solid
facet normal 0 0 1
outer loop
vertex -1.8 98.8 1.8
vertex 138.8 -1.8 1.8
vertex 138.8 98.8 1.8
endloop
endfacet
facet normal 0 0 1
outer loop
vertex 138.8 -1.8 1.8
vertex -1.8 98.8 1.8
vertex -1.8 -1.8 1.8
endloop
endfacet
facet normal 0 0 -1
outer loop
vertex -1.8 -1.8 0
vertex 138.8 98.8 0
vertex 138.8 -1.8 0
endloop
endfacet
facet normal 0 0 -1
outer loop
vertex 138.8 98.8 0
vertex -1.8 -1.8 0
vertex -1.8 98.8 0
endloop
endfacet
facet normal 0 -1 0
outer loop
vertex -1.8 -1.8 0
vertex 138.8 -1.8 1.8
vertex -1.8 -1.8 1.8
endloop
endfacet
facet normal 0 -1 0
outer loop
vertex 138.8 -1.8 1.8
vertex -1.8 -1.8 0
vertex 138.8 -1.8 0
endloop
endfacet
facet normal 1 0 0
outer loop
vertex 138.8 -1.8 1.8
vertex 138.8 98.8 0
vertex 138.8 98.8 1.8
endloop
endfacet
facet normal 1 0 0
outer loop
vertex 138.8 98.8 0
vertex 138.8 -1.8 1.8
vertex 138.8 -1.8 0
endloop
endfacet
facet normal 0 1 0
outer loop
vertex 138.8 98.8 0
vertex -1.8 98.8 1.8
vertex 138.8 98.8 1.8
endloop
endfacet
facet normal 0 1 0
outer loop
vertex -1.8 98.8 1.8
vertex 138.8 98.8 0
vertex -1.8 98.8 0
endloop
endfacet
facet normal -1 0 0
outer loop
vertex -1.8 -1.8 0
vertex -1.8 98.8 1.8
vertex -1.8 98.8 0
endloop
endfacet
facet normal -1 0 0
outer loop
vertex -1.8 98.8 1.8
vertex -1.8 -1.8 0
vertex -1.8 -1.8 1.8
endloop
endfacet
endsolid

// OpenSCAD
materialThickness = 1.8;
boxX = 137;
boxY = 97;
boxZ = 42;
latchX = 12;
latchY = 12;
plateZ = 1.5;
plateDistanceZ = 7.5;

module latch(holeRadius) {
    difference() {
        cube([
            latchX,
            latchY,
            materialThickness
        ]);
        translate([
            latchX/2,
            latchY/2,
            materialThickness/2
        ]) cylinder(
            r=holeRadius,
            h=materialThickness,
            $fn=64,
            center=true
        );
    }
}

module caseCover() {
    // base cube
    translate([
        - materialThickness,
        - materialThickness,
        0
    ]) cube([
        boxX + 2*materialThickness,
        boxY + 2*materialThickness,
        materialThickness
    ]);
};

caseCover();
